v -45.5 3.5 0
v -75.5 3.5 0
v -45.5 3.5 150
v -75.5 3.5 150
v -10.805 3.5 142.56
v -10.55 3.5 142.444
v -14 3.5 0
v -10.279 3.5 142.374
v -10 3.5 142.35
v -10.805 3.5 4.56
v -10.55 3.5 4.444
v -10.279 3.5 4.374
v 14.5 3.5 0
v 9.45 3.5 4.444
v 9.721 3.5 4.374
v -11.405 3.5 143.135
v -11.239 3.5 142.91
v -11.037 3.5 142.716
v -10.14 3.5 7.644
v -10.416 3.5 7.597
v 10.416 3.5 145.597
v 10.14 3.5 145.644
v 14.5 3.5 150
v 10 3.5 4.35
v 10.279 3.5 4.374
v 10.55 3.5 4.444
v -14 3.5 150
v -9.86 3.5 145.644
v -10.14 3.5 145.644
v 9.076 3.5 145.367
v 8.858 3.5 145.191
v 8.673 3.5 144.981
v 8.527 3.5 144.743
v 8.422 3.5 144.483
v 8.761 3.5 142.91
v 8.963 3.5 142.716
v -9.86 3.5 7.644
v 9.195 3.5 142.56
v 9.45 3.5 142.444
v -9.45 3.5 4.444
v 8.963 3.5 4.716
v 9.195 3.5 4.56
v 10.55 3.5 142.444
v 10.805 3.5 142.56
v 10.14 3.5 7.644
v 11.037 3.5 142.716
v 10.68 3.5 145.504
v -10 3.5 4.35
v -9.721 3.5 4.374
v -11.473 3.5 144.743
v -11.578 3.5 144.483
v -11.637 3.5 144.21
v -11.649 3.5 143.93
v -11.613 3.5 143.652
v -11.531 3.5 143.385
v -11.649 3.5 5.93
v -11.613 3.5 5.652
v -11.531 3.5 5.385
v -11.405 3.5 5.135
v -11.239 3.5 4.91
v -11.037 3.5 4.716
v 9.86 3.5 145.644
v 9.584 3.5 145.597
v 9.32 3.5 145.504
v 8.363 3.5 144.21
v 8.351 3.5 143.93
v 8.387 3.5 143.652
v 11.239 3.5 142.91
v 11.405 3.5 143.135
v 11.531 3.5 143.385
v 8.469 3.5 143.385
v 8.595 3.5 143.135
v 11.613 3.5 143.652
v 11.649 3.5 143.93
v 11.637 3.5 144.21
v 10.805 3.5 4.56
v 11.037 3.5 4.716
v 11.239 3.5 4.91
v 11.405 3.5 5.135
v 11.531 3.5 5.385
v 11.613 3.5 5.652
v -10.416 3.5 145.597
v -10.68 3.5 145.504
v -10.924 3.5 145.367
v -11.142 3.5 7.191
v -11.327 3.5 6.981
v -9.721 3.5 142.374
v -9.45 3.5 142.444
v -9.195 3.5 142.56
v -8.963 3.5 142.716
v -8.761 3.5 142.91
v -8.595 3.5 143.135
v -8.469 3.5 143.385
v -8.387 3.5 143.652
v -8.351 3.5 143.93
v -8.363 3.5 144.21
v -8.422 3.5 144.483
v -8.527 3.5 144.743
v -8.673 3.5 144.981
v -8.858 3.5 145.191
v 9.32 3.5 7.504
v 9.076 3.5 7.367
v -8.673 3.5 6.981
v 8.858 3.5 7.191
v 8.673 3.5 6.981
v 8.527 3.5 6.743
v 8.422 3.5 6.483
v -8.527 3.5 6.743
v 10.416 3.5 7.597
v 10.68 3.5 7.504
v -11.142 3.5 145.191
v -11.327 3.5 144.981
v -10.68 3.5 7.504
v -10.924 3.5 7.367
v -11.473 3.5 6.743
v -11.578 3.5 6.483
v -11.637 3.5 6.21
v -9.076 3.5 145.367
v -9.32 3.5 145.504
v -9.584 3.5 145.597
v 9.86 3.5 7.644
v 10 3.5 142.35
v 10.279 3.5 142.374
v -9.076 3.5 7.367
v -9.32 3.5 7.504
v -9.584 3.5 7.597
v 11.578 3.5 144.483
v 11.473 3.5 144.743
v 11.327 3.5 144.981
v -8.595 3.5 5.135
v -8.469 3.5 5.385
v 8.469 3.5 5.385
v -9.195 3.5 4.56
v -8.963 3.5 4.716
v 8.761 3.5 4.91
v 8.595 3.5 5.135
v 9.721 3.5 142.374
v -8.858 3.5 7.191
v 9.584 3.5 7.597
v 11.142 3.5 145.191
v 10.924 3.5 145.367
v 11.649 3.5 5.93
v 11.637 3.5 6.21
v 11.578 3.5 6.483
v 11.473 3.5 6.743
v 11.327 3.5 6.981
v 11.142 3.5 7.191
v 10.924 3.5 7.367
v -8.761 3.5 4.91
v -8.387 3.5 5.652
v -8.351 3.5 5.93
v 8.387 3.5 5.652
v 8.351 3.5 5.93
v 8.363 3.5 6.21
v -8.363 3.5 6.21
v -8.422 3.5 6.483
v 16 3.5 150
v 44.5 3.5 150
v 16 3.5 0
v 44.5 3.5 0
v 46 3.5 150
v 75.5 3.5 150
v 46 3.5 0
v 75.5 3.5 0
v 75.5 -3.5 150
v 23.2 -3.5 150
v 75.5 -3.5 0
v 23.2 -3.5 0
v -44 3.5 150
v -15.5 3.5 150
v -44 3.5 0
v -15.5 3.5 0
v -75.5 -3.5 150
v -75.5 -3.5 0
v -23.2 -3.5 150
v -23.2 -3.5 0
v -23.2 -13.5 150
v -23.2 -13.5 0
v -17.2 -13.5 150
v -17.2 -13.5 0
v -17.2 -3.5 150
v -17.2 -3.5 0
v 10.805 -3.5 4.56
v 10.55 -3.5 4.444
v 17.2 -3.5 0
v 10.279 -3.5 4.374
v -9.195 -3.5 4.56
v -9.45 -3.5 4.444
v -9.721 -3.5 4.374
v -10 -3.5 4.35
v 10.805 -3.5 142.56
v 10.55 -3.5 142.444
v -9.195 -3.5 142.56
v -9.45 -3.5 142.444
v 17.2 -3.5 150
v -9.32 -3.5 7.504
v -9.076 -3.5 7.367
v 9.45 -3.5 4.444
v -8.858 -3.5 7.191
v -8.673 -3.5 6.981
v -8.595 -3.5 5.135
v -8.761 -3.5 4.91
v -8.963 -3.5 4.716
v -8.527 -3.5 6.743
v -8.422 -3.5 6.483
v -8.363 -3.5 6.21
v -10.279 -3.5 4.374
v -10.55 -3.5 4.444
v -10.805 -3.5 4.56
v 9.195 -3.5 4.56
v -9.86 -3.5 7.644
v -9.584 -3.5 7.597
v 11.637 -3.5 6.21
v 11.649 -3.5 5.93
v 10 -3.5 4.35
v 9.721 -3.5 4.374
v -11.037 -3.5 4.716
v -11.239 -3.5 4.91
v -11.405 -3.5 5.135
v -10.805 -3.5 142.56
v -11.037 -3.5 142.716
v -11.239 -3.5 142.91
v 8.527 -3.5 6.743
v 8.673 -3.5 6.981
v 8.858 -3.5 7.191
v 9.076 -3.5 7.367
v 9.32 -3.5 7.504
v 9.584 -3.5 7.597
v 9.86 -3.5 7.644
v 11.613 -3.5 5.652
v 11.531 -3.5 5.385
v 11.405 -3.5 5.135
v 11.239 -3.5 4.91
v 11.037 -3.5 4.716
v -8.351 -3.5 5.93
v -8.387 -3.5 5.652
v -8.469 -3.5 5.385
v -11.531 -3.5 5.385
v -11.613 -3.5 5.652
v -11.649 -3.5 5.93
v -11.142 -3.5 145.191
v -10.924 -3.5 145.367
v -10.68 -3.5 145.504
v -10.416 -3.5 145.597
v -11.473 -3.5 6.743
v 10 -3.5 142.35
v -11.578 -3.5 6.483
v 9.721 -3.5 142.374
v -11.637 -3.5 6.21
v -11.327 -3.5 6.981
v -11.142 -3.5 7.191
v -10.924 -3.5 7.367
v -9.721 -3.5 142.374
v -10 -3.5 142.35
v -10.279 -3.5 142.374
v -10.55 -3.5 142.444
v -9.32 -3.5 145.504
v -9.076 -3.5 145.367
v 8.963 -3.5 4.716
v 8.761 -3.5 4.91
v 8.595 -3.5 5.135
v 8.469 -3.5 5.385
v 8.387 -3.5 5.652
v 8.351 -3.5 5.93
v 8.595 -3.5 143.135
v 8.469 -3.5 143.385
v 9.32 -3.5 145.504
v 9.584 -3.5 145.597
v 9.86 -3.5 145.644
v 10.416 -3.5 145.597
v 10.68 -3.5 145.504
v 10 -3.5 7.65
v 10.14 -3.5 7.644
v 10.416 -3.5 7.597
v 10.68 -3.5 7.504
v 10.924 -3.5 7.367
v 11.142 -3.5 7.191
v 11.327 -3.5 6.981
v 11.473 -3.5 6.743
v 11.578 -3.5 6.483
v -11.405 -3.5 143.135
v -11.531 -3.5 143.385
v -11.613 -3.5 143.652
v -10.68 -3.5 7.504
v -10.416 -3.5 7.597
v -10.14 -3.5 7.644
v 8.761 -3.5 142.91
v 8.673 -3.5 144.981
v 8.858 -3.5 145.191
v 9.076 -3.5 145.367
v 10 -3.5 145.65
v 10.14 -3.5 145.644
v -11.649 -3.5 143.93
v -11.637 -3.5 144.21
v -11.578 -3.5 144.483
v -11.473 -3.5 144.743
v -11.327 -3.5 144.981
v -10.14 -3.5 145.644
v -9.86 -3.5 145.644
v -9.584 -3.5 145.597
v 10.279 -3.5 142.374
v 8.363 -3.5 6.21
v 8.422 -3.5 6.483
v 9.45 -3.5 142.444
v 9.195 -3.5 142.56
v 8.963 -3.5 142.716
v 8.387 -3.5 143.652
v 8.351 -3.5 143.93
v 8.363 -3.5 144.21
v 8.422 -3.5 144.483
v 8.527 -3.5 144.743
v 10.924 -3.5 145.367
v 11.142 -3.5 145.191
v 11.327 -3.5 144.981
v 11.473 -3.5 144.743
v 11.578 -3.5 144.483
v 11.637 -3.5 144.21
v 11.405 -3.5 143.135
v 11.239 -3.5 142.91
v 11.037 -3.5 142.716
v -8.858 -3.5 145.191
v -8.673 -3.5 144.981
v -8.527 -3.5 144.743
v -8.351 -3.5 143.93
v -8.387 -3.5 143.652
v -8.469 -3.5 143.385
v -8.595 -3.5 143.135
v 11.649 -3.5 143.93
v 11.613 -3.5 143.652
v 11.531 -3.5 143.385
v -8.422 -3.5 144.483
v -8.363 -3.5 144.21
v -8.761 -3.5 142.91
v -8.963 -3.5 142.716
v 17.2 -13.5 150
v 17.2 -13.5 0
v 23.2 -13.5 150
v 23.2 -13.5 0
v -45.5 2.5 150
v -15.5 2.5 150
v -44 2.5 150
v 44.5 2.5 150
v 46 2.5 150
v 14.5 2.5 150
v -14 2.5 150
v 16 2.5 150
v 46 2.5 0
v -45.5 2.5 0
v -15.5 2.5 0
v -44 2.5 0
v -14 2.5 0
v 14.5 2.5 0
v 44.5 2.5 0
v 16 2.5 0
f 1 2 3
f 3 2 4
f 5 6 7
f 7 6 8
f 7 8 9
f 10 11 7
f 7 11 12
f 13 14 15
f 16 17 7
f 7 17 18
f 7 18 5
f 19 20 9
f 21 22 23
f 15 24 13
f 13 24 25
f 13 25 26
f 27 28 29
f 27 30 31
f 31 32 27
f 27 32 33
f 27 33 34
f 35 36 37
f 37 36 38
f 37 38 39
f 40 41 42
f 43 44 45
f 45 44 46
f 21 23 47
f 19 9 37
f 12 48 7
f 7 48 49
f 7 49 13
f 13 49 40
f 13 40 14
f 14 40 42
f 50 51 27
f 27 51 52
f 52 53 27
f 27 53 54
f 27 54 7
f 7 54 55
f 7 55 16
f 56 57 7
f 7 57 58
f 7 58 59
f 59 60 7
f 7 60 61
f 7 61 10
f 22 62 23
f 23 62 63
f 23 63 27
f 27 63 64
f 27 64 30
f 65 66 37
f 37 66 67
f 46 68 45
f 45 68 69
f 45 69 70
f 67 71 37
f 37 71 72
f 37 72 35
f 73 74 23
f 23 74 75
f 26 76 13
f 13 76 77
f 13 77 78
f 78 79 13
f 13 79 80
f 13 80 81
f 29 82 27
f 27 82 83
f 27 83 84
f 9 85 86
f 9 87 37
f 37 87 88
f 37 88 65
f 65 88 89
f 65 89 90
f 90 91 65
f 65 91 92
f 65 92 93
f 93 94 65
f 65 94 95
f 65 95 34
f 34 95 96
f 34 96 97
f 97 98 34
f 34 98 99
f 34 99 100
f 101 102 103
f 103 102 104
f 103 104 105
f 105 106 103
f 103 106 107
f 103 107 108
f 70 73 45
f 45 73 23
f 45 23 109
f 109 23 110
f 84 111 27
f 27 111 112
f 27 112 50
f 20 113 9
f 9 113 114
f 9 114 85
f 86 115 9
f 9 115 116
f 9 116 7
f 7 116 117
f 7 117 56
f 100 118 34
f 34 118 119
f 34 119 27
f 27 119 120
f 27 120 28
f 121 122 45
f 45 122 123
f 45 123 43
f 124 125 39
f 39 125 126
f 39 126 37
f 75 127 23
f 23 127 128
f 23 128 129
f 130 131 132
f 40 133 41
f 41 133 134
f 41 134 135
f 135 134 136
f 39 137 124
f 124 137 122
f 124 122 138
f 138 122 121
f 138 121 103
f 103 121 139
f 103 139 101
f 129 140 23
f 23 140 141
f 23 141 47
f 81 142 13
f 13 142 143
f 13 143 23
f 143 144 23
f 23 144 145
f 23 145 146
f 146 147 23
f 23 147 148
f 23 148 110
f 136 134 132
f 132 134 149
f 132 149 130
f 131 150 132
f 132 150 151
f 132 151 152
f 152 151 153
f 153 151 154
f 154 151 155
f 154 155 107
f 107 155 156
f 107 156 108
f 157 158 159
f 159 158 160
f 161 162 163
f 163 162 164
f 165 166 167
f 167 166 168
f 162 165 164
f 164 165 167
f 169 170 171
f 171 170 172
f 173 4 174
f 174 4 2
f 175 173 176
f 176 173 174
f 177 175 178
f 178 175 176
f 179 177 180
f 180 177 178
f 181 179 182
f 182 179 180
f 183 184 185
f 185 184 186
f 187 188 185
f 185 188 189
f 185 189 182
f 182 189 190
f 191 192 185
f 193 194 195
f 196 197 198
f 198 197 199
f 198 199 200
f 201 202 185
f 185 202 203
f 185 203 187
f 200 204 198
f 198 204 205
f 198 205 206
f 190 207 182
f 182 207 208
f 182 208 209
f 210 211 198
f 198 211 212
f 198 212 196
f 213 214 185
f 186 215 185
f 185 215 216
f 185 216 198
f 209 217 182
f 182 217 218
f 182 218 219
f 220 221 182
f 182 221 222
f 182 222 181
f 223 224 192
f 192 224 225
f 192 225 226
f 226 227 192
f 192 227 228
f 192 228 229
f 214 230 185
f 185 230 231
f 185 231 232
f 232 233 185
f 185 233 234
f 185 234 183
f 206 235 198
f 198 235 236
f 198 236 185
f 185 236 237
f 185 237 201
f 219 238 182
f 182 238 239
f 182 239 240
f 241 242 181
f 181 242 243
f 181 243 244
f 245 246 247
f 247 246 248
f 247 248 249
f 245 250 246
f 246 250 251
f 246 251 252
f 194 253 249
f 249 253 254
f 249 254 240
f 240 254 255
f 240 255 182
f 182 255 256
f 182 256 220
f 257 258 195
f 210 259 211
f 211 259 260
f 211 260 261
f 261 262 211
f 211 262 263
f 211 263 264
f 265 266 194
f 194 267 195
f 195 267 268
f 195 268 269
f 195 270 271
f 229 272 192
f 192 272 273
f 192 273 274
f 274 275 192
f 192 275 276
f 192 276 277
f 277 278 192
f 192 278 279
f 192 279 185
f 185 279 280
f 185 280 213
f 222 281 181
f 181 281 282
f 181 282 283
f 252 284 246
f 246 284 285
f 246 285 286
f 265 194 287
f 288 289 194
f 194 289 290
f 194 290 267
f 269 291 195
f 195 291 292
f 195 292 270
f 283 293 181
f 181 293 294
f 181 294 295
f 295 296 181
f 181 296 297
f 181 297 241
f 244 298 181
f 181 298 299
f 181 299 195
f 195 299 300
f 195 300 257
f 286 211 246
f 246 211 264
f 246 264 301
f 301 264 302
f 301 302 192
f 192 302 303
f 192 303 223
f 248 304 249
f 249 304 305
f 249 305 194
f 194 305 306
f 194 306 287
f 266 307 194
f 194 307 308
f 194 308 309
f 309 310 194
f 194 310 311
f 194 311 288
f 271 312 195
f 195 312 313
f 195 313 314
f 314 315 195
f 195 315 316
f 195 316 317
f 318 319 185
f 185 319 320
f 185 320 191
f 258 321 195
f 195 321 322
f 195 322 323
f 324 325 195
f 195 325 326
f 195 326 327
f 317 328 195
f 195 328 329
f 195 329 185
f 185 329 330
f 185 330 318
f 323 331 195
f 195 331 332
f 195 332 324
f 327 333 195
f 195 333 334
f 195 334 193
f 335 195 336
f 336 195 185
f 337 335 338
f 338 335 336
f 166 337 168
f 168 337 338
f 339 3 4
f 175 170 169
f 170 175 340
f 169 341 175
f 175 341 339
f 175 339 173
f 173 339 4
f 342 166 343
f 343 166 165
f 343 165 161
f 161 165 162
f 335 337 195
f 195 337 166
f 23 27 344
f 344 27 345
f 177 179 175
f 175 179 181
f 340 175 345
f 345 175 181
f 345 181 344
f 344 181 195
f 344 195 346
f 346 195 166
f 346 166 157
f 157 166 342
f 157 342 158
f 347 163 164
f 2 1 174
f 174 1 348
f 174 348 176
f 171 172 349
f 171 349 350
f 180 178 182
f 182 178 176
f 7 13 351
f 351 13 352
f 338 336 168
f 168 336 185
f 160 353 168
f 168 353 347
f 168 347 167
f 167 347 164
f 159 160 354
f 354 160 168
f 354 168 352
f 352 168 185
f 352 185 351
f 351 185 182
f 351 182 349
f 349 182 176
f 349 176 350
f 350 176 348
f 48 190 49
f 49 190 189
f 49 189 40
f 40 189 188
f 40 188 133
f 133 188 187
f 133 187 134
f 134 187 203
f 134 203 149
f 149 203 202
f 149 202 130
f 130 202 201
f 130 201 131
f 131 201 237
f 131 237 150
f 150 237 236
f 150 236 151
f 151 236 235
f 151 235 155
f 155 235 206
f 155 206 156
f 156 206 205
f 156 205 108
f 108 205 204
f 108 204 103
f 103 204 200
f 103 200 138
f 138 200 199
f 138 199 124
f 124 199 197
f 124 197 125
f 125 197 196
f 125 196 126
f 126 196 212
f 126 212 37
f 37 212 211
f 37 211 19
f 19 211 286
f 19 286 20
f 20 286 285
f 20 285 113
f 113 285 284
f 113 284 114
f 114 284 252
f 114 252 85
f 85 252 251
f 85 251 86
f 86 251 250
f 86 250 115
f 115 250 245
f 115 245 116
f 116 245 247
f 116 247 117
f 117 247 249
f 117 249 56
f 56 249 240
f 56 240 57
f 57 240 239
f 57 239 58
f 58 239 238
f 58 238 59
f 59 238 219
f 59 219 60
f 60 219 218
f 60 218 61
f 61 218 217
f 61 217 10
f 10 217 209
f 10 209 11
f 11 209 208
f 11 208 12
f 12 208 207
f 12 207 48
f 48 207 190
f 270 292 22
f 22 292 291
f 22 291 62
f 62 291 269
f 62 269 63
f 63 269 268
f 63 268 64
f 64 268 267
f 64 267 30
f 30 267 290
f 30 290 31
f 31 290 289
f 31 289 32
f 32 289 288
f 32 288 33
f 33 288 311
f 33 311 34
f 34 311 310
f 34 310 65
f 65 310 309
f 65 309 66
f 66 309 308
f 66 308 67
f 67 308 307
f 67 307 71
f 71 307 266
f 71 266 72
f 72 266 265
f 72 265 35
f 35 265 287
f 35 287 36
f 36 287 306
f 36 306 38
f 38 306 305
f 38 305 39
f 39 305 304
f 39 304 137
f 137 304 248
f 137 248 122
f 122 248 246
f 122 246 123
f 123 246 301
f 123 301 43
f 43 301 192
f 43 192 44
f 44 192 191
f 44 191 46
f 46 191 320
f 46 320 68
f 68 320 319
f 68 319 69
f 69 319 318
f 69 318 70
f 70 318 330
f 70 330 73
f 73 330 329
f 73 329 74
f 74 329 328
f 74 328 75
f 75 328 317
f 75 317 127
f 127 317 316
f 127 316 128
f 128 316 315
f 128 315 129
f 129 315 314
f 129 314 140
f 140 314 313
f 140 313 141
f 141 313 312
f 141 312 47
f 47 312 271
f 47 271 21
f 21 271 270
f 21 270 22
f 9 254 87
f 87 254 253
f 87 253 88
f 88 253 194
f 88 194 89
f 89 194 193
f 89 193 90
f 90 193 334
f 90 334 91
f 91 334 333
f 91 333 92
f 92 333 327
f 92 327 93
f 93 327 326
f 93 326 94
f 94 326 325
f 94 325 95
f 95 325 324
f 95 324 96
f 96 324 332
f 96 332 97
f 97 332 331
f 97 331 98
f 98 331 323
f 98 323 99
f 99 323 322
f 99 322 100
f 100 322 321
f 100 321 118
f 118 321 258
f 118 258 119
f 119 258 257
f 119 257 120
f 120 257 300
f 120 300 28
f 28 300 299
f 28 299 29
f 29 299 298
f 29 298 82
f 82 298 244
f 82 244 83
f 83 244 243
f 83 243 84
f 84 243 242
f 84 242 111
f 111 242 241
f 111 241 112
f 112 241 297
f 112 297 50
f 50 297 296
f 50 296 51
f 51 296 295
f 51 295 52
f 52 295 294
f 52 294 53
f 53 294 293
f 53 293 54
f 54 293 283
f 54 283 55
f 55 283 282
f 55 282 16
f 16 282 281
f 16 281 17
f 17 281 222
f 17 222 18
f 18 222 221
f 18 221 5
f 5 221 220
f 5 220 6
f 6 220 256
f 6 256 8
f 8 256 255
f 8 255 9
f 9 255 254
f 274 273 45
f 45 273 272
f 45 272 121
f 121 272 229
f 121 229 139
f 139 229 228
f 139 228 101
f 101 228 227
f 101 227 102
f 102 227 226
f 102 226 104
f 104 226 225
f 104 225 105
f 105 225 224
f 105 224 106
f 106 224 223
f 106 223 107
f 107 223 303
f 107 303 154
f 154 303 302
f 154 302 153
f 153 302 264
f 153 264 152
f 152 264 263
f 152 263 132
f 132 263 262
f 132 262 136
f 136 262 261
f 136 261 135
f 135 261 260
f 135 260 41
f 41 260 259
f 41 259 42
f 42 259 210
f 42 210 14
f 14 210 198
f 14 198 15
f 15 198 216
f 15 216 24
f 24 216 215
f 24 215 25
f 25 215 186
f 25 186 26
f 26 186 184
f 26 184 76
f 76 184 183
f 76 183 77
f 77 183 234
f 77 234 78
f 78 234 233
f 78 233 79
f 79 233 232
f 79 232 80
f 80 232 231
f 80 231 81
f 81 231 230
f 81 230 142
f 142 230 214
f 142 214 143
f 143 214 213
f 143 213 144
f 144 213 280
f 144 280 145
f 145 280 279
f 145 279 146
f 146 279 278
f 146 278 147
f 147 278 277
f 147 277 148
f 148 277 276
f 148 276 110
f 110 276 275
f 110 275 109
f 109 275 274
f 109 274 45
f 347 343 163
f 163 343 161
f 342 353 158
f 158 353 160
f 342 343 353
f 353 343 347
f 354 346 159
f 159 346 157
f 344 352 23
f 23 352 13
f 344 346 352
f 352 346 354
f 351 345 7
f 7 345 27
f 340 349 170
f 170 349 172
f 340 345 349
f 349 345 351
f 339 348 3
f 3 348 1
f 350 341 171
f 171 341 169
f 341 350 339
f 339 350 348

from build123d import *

# Parameters (mm, degrees)
BOSS_EXTRUDE1_DEPTH = 150
SKETCH4_R           = 1.65
CUT_EXTRUDE1_DEPTH  = 7
SKETCH5_W           = 1.5
SKETCH5_H           = 150
CUT_EXTRUDE2_DEPTH  = 1


with BuildPart() as part:
    # Sketch1 → Boss-Extrude1 (new body)
    with BuildSketch(Plane.XY):
        Polygon((-75.5, 3.5), (75.5, 3.5), (75.5, -3.5), (23.2, -3.5), (23.2, -13.5), (17.2, -13.5), (17.2, -3.5), (-17.2, -3.5), (-17.2, -13.5), (-23.2, -13.5), (-23.2, -3.5), (-75.5, -3.5), align=None)
    extrude(amount=BOSS_EXTRUDE1_DEPTH)

    # Sketch4 → Cut-Extrude1 (cut)
    with BuildSketch(Plane.XZ.offset(3.5)):
        with Locations((-10, 6)):
            Circle(SKETCH4_R)
        with Locations((10, 6)):
            Circle(SKETCH4_R)
        with Locations((-10, 144)):
            Circle(SKETCH4_R)
        with Locations((10, 144)):
            Circle(SKETCH4_R)
    extrude(amount=-CUT_EXTRUDE1_DEPTH, mode=Mode.SUBTRACT)

    # Sketch5 → Cut-Extrude2 (cut)
    with BuildSketch(Plane(origin=(0, 3.5, 0), x_dir=(1, 0, 0), z_dir=(0, 1, 0))):
        with Locations((-44.75, -75)):
            Rectangle(SKETCH5_W, SKETCH5_H)
        with Locations((-14.75, -75)):
            Rectangle(SKETCH5_W, SKETCH5_H)
        with Locations((15.25, -75)):
            Rectangle(SKETCH5_W, SKETCH5_H)
        with Locations((45.25, -75)):
            Rectangle(SKETCH5_W, SKETCH5_H)
    extrude(amount=-CUT_EXTRUDE2_DEPTH, mode=Mode.SUBTRACT)


solid = part.part
